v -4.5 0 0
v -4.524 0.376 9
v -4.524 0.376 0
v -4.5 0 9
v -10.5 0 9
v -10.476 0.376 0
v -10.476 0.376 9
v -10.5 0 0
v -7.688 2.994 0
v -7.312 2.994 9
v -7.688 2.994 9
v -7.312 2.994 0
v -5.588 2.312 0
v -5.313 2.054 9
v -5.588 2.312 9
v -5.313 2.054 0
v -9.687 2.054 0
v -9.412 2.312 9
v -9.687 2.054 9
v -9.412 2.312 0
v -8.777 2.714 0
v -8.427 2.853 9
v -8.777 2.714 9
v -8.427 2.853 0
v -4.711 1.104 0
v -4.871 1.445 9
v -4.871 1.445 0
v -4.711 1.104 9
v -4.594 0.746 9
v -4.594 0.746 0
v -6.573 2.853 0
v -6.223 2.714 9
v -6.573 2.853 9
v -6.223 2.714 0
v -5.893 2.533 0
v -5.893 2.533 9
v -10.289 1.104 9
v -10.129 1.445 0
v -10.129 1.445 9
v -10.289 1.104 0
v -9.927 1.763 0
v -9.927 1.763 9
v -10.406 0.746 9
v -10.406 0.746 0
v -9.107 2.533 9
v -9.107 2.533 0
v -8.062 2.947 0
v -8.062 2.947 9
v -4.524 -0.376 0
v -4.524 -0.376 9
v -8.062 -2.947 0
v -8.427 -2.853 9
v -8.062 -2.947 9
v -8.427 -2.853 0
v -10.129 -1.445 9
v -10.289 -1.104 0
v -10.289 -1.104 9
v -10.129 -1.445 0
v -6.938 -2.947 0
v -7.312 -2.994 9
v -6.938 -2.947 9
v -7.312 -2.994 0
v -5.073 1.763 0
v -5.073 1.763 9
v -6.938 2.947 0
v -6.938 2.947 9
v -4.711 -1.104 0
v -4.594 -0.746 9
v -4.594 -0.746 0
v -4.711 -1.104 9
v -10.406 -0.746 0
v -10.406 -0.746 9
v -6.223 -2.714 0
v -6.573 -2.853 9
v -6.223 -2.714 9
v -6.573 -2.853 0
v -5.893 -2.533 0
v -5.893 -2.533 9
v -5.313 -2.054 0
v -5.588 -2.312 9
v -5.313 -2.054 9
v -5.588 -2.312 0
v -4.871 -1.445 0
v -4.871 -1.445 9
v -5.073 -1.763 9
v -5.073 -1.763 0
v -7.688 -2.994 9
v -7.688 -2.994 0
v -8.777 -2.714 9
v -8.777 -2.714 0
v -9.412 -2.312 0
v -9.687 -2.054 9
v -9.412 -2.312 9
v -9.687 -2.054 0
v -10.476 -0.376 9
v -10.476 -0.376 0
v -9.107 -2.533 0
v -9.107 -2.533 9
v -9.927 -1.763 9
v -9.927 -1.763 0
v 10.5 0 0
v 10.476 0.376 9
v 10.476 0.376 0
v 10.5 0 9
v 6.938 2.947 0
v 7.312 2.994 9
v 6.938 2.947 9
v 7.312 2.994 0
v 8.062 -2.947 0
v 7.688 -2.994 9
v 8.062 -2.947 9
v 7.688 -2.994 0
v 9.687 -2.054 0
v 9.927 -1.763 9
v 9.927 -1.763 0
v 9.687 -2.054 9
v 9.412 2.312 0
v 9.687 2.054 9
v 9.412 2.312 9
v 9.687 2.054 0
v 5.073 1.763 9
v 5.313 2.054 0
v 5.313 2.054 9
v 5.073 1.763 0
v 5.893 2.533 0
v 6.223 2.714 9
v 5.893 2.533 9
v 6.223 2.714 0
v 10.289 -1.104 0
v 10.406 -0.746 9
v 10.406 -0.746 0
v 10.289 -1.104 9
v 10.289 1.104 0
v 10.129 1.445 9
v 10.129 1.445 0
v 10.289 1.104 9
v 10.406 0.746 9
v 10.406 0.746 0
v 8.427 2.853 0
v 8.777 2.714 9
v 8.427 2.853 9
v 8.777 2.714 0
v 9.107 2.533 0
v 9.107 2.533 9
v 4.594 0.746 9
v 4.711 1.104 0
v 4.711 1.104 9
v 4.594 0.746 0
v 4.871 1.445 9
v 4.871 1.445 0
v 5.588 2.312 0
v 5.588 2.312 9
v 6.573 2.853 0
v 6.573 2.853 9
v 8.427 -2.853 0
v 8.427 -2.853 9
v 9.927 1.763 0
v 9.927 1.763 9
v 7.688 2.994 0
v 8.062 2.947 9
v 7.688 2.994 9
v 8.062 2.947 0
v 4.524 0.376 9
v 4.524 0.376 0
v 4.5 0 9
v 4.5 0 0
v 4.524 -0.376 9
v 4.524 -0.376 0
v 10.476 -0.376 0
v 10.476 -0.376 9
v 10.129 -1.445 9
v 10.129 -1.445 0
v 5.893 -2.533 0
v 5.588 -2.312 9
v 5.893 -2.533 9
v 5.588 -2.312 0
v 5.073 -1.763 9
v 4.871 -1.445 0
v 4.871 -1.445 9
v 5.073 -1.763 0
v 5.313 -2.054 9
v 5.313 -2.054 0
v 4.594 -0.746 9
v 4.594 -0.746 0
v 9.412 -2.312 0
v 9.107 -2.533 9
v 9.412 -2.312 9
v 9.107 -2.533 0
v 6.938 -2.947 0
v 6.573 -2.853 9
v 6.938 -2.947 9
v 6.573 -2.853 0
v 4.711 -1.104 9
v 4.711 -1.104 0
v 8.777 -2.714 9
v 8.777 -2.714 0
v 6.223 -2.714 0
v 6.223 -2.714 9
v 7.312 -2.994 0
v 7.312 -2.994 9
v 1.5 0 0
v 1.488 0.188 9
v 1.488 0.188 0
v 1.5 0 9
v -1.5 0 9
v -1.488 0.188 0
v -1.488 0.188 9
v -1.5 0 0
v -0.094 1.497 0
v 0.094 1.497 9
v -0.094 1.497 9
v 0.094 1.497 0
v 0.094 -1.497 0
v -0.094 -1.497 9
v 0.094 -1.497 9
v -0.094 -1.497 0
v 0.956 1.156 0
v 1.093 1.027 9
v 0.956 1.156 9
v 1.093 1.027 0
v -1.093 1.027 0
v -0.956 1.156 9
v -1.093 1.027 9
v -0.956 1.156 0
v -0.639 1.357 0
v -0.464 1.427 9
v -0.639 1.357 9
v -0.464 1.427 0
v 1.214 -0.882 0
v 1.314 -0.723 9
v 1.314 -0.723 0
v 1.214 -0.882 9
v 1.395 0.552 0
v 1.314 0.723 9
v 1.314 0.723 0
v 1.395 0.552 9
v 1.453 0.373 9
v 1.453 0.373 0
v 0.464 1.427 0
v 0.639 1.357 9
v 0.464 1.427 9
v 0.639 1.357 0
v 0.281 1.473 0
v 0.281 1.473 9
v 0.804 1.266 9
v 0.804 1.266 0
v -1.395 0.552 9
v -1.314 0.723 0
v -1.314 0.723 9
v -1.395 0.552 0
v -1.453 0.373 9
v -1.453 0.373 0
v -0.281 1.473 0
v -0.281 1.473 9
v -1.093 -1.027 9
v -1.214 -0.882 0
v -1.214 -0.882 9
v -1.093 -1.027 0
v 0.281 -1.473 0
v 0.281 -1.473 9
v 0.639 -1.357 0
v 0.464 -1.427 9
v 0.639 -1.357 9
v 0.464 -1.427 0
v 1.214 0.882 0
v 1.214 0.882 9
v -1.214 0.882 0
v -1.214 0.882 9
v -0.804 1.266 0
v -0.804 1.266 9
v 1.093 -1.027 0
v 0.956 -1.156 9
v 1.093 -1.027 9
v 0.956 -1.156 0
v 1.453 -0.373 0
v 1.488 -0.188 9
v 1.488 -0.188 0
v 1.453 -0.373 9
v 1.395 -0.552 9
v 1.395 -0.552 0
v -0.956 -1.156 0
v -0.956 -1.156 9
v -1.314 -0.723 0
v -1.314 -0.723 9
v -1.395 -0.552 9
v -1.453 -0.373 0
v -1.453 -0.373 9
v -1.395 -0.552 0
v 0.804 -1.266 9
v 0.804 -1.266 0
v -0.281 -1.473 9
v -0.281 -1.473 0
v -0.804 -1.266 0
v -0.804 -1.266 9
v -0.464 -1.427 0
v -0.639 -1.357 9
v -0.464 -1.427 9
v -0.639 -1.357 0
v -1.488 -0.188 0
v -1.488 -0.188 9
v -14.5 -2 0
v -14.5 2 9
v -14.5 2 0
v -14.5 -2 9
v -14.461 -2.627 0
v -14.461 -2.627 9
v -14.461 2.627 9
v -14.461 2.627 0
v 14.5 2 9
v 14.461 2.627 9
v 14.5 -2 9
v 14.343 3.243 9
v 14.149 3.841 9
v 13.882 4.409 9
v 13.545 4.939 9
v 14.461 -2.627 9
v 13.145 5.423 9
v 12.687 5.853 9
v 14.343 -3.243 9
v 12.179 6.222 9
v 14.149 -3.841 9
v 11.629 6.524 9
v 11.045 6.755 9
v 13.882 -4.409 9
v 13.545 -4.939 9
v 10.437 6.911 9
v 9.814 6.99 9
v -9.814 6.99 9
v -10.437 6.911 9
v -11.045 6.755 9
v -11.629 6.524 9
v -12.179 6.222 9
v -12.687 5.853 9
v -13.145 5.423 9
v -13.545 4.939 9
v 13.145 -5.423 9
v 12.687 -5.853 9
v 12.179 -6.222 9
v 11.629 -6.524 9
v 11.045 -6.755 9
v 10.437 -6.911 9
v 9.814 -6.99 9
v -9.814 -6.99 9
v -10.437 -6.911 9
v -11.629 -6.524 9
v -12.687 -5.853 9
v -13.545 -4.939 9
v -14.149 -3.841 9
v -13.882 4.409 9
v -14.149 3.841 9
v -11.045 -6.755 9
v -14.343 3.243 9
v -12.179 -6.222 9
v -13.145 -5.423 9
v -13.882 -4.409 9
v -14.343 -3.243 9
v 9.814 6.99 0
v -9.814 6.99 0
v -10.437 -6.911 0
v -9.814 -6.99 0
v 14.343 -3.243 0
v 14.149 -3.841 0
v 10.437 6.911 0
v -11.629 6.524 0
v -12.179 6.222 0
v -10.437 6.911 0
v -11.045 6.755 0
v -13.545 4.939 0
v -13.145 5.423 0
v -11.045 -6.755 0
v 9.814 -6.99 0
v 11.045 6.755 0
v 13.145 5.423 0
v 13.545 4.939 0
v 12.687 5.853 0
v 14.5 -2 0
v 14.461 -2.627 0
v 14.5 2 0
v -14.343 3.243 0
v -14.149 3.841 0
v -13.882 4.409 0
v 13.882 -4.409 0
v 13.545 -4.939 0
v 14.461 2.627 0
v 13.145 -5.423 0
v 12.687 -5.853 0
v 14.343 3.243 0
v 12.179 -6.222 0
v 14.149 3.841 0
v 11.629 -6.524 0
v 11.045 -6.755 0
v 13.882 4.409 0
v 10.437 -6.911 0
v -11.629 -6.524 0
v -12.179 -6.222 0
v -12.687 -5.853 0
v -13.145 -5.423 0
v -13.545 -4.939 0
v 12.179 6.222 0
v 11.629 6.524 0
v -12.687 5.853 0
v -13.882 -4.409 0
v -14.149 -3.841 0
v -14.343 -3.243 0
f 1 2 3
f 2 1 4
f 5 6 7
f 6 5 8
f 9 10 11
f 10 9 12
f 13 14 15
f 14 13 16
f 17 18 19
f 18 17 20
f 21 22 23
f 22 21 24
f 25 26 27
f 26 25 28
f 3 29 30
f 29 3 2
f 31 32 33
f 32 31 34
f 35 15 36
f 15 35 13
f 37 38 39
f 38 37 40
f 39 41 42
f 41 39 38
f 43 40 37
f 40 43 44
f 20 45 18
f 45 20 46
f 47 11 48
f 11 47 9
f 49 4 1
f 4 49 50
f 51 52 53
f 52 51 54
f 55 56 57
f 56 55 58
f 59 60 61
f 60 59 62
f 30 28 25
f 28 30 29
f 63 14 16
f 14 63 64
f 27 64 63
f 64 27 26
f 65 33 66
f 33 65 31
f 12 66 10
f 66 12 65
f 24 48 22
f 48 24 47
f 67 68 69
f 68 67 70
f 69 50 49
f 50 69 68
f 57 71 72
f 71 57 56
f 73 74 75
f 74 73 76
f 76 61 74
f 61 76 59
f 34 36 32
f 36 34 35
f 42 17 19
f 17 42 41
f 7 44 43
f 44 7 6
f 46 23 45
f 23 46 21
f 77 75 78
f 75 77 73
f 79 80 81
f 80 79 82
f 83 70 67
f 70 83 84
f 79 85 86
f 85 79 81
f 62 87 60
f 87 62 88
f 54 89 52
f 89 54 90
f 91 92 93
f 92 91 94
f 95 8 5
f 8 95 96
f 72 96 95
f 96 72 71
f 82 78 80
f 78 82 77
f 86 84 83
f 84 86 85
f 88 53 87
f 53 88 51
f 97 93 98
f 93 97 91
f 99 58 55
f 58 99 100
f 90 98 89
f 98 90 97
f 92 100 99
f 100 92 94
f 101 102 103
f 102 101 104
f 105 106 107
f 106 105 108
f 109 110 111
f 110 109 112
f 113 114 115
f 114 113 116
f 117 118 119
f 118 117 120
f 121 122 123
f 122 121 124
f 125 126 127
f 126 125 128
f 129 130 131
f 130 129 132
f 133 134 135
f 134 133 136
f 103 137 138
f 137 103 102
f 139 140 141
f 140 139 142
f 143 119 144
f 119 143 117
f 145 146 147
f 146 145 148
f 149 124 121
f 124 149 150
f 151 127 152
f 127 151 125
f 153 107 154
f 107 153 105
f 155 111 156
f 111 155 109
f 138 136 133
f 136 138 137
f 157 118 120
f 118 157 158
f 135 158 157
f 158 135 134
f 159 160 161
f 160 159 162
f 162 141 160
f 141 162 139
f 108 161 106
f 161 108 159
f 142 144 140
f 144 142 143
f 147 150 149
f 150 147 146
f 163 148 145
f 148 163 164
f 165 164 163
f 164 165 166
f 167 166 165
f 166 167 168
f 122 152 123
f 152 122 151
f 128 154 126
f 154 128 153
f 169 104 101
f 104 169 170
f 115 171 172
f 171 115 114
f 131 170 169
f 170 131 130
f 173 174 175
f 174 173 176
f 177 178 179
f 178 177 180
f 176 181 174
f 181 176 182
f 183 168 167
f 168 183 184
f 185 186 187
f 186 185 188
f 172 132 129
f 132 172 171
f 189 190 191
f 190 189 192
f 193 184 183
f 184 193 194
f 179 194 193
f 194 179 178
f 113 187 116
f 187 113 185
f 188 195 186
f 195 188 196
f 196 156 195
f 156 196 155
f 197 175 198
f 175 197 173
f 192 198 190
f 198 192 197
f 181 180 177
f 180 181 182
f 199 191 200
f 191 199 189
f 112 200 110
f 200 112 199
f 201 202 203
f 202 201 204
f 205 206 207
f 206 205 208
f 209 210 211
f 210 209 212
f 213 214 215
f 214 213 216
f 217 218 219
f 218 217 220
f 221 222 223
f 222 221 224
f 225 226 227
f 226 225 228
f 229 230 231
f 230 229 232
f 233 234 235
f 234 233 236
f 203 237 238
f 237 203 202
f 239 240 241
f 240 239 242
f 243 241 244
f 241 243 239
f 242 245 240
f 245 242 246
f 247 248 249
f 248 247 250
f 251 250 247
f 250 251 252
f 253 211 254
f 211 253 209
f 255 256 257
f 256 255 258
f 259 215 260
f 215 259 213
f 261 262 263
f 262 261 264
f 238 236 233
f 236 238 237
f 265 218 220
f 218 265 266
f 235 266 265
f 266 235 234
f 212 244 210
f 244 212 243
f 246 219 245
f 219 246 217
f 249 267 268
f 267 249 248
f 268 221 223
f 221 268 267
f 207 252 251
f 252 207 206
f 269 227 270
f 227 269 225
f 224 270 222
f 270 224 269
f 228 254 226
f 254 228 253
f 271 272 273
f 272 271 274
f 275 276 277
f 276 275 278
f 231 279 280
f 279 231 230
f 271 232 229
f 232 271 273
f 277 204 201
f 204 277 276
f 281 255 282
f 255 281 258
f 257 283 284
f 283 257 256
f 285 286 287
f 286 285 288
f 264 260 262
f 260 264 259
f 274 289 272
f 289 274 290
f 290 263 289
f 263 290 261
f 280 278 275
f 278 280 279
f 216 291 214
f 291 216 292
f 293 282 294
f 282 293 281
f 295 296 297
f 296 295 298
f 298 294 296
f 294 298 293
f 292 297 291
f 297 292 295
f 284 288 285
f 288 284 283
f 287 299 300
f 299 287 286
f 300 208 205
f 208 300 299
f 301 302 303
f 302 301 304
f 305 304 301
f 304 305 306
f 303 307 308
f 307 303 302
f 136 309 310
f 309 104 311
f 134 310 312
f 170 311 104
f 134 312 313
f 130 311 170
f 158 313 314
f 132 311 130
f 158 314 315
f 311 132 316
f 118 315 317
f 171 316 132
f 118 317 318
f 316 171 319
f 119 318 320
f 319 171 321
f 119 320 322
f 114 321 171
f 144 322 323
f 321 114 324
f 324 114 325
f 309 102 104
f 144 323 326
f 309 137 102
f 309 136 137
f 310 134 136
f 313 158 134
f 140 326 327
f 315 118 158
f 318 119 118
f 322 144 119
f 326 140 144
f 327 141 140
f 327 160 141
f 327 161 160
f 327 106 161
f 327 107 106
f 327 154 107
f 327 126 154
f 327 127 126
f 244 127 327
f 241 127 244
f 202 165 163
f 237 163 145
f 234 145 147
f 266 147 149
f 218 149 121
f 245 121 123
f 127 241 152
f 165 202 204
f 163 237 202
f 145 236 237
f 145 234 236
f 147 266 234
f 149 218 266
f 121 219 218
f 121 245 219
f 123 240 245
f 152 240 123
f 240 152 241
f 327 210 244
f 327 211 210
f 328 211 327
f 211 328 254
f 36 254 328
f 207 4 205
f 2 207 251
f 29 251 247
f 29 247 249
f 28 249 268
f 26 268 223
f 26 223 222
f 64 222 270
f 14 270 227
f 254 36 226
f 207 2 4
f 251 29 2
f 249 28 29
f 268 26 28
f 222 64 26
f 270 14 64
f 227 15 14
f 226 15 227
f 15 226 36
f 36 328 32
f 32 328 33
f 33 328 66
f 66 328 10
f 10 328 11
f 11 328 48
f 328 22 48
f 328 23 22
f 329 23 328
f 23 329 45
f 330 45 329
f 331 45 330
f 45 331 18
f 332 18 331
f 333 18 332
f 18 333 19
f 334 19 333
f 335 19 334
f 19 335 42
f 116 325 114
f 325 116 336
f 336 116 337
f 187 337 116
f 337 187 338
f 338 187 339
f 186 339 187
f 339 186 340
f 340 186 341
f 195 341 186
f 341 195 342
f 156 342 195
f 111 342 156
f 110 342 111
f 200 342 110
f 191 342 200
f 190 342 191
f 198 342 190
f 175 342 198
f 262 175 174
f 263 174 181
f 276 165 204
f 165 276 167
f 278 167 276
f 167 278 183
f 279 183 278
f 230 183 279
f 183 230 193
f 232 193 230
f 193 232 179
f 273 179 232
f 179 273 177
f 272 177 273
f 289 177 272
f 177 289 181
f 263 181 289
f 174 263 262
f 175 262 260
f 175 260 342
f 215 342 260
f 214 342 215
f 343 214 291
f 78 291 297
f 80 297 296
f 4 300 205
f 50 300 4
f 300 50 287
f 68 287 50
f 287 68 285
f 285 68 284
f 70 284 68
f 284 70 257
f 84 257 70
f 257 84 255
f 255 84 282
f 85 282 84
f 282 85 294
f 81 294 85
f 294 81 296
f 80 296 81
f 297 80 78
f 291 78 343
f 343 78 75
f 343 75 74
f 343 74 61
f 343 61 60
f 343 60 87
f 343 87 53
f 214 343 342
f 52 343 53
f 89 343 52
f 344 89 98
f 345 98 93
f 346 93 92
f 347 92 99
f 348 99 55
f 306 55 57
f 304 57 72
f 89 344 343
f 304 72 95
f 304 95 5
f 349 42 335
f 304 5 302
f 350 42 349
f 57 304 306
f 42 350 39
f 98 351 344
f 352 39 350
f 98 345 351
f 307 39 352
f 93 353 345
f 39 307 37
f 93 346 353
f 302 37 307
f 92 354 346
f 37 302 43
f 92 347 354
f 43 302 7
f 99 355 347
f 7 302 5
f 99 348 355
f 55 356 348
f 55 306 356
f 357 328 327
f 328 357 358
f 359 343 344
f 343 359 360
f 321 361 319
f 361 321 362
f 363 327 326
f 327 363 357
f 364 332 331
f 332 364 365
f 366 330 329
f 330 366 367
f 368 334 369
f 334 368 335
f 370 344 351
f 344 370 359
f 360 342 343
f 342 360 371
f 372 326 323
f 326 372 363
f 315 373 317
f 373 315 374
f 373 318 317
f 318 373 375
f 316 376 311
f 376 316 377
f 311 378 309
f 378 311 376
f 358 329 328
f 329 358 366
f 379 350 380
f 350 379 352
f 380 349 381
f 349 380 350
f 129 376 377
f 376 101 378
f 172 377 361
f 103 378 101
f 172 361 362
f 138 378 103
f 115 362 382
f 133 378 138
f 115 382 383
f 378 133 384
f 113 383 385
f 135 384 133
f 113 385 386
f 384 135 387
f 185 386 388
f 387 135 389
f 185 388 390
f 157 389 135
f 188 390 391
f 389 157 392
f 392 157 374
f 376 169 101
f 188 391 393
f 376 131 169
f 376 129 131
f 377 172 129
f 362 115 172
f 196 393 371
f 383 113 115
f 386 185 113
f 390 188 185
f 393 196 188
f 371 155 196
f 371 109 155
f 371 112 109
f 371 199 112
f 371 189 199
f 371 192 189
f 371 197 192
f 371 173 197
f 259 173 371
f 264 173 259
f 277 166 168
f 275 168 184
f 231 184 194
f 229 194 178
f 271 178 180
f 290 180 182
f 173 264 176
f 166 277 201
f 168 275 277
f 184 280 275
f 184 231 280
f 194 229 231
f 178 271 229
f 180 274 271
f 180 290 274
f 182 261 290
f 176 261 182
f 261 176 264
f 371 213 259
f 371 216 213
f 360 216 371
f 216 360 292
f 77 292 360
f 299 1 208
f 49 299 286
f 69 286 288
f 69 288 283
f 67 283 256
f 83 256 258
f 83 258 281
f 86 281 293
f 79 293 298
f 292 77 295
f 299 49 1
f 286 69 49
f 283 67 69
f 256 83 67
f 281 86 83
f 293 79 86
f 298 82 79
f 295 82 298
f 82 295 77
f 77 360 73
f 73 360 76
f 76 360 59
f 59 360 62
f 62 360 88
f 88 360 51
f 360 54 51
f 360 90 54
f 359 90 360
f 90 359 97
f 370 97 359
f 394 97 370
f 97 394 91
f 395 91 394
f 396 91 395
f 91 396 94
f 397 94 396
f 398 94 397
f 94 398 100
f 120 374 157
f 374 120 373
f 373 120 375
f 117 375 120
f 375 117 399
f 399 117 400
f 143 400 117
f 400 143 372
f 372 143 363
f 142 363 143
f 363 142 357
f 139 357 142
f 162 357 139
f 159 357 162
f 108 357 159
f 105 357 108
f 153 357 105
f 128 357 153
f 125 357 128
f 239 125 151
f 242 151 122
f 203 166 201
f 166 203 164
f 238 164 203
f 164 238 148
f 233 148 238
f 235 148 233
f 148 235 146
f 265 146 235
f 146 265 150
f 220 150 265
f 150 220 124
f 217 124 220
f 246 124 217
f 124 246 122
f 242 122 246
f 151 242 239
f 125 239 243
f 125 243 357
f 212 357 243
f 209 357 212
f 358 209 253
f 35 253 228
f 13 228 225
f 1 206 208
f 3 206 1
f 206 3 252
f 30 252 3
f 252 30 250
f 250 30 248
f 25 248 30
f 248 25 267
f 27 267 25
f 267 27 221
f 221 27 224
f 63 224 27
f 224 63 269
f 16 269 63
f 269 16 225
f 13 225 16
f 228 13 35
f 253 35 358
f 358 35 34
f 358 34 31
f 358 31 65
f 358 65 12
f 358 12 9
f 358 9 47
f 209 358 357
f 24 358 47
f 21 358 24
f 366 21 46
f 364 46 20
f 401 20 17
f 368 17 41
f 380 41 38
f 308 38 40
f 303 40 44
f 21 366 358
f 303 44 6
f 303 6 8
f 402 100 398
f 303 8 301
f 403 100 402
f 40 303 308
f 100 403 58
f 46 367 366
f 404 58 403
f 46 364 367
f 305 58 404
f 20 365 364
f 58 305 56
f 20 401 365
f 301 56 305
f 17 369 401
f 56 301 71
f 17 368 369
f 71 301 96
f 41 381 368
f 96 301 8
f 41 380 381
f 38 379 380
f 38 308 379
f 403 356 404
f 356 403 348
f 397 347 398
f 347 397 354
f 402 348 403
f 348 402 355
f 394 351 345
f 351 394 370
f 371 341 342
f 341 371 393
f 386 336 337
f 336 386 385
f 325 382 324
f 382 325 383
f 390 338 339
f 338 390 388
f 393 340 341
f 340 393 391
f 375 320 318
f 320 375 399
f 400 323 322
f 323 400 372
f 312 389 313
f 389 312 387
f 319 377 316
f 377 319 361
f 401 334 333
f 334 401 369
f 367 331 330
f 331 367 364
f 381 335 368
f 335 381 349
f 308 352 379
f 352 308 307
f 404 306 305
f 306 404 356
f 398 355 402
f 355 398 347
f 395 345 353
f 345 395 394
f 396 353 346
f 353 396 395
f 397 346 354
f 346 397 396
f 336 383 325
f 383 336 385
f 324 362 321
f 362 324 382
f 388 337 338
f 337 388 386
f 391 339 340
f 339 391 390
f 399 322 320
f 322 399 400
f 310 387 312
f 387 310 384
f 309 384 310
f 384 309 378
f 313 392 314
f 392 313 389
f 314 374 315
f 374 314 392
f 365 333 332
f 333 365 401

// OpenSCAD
$fn = 50;


difference() {
	union() {
		hull() {
			translate(v = [-9.5000000000, 2.0000000000, 0]) {
				cylinder(h = 9, r = 5);
			}
			translate(v = [9.5000000000, 2.0000000000, 0]) {
				cylinder(h = 9, r = 5);
			}
			translate(v = [-9.5000000000, -2.0000000000, 0]) {
				cylinder(h = 9, r = 5);
			}
			translate(v = [9.5000000000, -2.0000000000, 0]) {
				cylinder(h = 9, r = 5);
			}
		}
	}
	union() {
		translate(v = [-7.5000000000, 0.0000000000, 0]) {
			translate(v = [0, 0, -100]) {
				cylinder(h = 200, r = 3.0000000000);
			}
		}
		translate(v = [7.5000000000, 0.0000000000, 0]) {
			translate(v = [0, 0, -100]) {
				cylinder(h = 200, r = 3.0000000000);
			}
		}
		translate(v = [-7.5000000000, 0.0000000000, 0]) {
			translate(v = [0, 0, -100]) {
				cylinder(h = 200, r = 1.5000000000);
			}
		}
		translate(v = [0, 0, -100]) {
			cylinder(h = 200, r = 1.5000000000);
		}
		translate(v = [7.5000000000, 0.0000000000, 0]) {
			translate(v = [0, 0, -100]) {
				cylinder(h = 200, r = 1.5000000000);
			}
		}
	}
}
